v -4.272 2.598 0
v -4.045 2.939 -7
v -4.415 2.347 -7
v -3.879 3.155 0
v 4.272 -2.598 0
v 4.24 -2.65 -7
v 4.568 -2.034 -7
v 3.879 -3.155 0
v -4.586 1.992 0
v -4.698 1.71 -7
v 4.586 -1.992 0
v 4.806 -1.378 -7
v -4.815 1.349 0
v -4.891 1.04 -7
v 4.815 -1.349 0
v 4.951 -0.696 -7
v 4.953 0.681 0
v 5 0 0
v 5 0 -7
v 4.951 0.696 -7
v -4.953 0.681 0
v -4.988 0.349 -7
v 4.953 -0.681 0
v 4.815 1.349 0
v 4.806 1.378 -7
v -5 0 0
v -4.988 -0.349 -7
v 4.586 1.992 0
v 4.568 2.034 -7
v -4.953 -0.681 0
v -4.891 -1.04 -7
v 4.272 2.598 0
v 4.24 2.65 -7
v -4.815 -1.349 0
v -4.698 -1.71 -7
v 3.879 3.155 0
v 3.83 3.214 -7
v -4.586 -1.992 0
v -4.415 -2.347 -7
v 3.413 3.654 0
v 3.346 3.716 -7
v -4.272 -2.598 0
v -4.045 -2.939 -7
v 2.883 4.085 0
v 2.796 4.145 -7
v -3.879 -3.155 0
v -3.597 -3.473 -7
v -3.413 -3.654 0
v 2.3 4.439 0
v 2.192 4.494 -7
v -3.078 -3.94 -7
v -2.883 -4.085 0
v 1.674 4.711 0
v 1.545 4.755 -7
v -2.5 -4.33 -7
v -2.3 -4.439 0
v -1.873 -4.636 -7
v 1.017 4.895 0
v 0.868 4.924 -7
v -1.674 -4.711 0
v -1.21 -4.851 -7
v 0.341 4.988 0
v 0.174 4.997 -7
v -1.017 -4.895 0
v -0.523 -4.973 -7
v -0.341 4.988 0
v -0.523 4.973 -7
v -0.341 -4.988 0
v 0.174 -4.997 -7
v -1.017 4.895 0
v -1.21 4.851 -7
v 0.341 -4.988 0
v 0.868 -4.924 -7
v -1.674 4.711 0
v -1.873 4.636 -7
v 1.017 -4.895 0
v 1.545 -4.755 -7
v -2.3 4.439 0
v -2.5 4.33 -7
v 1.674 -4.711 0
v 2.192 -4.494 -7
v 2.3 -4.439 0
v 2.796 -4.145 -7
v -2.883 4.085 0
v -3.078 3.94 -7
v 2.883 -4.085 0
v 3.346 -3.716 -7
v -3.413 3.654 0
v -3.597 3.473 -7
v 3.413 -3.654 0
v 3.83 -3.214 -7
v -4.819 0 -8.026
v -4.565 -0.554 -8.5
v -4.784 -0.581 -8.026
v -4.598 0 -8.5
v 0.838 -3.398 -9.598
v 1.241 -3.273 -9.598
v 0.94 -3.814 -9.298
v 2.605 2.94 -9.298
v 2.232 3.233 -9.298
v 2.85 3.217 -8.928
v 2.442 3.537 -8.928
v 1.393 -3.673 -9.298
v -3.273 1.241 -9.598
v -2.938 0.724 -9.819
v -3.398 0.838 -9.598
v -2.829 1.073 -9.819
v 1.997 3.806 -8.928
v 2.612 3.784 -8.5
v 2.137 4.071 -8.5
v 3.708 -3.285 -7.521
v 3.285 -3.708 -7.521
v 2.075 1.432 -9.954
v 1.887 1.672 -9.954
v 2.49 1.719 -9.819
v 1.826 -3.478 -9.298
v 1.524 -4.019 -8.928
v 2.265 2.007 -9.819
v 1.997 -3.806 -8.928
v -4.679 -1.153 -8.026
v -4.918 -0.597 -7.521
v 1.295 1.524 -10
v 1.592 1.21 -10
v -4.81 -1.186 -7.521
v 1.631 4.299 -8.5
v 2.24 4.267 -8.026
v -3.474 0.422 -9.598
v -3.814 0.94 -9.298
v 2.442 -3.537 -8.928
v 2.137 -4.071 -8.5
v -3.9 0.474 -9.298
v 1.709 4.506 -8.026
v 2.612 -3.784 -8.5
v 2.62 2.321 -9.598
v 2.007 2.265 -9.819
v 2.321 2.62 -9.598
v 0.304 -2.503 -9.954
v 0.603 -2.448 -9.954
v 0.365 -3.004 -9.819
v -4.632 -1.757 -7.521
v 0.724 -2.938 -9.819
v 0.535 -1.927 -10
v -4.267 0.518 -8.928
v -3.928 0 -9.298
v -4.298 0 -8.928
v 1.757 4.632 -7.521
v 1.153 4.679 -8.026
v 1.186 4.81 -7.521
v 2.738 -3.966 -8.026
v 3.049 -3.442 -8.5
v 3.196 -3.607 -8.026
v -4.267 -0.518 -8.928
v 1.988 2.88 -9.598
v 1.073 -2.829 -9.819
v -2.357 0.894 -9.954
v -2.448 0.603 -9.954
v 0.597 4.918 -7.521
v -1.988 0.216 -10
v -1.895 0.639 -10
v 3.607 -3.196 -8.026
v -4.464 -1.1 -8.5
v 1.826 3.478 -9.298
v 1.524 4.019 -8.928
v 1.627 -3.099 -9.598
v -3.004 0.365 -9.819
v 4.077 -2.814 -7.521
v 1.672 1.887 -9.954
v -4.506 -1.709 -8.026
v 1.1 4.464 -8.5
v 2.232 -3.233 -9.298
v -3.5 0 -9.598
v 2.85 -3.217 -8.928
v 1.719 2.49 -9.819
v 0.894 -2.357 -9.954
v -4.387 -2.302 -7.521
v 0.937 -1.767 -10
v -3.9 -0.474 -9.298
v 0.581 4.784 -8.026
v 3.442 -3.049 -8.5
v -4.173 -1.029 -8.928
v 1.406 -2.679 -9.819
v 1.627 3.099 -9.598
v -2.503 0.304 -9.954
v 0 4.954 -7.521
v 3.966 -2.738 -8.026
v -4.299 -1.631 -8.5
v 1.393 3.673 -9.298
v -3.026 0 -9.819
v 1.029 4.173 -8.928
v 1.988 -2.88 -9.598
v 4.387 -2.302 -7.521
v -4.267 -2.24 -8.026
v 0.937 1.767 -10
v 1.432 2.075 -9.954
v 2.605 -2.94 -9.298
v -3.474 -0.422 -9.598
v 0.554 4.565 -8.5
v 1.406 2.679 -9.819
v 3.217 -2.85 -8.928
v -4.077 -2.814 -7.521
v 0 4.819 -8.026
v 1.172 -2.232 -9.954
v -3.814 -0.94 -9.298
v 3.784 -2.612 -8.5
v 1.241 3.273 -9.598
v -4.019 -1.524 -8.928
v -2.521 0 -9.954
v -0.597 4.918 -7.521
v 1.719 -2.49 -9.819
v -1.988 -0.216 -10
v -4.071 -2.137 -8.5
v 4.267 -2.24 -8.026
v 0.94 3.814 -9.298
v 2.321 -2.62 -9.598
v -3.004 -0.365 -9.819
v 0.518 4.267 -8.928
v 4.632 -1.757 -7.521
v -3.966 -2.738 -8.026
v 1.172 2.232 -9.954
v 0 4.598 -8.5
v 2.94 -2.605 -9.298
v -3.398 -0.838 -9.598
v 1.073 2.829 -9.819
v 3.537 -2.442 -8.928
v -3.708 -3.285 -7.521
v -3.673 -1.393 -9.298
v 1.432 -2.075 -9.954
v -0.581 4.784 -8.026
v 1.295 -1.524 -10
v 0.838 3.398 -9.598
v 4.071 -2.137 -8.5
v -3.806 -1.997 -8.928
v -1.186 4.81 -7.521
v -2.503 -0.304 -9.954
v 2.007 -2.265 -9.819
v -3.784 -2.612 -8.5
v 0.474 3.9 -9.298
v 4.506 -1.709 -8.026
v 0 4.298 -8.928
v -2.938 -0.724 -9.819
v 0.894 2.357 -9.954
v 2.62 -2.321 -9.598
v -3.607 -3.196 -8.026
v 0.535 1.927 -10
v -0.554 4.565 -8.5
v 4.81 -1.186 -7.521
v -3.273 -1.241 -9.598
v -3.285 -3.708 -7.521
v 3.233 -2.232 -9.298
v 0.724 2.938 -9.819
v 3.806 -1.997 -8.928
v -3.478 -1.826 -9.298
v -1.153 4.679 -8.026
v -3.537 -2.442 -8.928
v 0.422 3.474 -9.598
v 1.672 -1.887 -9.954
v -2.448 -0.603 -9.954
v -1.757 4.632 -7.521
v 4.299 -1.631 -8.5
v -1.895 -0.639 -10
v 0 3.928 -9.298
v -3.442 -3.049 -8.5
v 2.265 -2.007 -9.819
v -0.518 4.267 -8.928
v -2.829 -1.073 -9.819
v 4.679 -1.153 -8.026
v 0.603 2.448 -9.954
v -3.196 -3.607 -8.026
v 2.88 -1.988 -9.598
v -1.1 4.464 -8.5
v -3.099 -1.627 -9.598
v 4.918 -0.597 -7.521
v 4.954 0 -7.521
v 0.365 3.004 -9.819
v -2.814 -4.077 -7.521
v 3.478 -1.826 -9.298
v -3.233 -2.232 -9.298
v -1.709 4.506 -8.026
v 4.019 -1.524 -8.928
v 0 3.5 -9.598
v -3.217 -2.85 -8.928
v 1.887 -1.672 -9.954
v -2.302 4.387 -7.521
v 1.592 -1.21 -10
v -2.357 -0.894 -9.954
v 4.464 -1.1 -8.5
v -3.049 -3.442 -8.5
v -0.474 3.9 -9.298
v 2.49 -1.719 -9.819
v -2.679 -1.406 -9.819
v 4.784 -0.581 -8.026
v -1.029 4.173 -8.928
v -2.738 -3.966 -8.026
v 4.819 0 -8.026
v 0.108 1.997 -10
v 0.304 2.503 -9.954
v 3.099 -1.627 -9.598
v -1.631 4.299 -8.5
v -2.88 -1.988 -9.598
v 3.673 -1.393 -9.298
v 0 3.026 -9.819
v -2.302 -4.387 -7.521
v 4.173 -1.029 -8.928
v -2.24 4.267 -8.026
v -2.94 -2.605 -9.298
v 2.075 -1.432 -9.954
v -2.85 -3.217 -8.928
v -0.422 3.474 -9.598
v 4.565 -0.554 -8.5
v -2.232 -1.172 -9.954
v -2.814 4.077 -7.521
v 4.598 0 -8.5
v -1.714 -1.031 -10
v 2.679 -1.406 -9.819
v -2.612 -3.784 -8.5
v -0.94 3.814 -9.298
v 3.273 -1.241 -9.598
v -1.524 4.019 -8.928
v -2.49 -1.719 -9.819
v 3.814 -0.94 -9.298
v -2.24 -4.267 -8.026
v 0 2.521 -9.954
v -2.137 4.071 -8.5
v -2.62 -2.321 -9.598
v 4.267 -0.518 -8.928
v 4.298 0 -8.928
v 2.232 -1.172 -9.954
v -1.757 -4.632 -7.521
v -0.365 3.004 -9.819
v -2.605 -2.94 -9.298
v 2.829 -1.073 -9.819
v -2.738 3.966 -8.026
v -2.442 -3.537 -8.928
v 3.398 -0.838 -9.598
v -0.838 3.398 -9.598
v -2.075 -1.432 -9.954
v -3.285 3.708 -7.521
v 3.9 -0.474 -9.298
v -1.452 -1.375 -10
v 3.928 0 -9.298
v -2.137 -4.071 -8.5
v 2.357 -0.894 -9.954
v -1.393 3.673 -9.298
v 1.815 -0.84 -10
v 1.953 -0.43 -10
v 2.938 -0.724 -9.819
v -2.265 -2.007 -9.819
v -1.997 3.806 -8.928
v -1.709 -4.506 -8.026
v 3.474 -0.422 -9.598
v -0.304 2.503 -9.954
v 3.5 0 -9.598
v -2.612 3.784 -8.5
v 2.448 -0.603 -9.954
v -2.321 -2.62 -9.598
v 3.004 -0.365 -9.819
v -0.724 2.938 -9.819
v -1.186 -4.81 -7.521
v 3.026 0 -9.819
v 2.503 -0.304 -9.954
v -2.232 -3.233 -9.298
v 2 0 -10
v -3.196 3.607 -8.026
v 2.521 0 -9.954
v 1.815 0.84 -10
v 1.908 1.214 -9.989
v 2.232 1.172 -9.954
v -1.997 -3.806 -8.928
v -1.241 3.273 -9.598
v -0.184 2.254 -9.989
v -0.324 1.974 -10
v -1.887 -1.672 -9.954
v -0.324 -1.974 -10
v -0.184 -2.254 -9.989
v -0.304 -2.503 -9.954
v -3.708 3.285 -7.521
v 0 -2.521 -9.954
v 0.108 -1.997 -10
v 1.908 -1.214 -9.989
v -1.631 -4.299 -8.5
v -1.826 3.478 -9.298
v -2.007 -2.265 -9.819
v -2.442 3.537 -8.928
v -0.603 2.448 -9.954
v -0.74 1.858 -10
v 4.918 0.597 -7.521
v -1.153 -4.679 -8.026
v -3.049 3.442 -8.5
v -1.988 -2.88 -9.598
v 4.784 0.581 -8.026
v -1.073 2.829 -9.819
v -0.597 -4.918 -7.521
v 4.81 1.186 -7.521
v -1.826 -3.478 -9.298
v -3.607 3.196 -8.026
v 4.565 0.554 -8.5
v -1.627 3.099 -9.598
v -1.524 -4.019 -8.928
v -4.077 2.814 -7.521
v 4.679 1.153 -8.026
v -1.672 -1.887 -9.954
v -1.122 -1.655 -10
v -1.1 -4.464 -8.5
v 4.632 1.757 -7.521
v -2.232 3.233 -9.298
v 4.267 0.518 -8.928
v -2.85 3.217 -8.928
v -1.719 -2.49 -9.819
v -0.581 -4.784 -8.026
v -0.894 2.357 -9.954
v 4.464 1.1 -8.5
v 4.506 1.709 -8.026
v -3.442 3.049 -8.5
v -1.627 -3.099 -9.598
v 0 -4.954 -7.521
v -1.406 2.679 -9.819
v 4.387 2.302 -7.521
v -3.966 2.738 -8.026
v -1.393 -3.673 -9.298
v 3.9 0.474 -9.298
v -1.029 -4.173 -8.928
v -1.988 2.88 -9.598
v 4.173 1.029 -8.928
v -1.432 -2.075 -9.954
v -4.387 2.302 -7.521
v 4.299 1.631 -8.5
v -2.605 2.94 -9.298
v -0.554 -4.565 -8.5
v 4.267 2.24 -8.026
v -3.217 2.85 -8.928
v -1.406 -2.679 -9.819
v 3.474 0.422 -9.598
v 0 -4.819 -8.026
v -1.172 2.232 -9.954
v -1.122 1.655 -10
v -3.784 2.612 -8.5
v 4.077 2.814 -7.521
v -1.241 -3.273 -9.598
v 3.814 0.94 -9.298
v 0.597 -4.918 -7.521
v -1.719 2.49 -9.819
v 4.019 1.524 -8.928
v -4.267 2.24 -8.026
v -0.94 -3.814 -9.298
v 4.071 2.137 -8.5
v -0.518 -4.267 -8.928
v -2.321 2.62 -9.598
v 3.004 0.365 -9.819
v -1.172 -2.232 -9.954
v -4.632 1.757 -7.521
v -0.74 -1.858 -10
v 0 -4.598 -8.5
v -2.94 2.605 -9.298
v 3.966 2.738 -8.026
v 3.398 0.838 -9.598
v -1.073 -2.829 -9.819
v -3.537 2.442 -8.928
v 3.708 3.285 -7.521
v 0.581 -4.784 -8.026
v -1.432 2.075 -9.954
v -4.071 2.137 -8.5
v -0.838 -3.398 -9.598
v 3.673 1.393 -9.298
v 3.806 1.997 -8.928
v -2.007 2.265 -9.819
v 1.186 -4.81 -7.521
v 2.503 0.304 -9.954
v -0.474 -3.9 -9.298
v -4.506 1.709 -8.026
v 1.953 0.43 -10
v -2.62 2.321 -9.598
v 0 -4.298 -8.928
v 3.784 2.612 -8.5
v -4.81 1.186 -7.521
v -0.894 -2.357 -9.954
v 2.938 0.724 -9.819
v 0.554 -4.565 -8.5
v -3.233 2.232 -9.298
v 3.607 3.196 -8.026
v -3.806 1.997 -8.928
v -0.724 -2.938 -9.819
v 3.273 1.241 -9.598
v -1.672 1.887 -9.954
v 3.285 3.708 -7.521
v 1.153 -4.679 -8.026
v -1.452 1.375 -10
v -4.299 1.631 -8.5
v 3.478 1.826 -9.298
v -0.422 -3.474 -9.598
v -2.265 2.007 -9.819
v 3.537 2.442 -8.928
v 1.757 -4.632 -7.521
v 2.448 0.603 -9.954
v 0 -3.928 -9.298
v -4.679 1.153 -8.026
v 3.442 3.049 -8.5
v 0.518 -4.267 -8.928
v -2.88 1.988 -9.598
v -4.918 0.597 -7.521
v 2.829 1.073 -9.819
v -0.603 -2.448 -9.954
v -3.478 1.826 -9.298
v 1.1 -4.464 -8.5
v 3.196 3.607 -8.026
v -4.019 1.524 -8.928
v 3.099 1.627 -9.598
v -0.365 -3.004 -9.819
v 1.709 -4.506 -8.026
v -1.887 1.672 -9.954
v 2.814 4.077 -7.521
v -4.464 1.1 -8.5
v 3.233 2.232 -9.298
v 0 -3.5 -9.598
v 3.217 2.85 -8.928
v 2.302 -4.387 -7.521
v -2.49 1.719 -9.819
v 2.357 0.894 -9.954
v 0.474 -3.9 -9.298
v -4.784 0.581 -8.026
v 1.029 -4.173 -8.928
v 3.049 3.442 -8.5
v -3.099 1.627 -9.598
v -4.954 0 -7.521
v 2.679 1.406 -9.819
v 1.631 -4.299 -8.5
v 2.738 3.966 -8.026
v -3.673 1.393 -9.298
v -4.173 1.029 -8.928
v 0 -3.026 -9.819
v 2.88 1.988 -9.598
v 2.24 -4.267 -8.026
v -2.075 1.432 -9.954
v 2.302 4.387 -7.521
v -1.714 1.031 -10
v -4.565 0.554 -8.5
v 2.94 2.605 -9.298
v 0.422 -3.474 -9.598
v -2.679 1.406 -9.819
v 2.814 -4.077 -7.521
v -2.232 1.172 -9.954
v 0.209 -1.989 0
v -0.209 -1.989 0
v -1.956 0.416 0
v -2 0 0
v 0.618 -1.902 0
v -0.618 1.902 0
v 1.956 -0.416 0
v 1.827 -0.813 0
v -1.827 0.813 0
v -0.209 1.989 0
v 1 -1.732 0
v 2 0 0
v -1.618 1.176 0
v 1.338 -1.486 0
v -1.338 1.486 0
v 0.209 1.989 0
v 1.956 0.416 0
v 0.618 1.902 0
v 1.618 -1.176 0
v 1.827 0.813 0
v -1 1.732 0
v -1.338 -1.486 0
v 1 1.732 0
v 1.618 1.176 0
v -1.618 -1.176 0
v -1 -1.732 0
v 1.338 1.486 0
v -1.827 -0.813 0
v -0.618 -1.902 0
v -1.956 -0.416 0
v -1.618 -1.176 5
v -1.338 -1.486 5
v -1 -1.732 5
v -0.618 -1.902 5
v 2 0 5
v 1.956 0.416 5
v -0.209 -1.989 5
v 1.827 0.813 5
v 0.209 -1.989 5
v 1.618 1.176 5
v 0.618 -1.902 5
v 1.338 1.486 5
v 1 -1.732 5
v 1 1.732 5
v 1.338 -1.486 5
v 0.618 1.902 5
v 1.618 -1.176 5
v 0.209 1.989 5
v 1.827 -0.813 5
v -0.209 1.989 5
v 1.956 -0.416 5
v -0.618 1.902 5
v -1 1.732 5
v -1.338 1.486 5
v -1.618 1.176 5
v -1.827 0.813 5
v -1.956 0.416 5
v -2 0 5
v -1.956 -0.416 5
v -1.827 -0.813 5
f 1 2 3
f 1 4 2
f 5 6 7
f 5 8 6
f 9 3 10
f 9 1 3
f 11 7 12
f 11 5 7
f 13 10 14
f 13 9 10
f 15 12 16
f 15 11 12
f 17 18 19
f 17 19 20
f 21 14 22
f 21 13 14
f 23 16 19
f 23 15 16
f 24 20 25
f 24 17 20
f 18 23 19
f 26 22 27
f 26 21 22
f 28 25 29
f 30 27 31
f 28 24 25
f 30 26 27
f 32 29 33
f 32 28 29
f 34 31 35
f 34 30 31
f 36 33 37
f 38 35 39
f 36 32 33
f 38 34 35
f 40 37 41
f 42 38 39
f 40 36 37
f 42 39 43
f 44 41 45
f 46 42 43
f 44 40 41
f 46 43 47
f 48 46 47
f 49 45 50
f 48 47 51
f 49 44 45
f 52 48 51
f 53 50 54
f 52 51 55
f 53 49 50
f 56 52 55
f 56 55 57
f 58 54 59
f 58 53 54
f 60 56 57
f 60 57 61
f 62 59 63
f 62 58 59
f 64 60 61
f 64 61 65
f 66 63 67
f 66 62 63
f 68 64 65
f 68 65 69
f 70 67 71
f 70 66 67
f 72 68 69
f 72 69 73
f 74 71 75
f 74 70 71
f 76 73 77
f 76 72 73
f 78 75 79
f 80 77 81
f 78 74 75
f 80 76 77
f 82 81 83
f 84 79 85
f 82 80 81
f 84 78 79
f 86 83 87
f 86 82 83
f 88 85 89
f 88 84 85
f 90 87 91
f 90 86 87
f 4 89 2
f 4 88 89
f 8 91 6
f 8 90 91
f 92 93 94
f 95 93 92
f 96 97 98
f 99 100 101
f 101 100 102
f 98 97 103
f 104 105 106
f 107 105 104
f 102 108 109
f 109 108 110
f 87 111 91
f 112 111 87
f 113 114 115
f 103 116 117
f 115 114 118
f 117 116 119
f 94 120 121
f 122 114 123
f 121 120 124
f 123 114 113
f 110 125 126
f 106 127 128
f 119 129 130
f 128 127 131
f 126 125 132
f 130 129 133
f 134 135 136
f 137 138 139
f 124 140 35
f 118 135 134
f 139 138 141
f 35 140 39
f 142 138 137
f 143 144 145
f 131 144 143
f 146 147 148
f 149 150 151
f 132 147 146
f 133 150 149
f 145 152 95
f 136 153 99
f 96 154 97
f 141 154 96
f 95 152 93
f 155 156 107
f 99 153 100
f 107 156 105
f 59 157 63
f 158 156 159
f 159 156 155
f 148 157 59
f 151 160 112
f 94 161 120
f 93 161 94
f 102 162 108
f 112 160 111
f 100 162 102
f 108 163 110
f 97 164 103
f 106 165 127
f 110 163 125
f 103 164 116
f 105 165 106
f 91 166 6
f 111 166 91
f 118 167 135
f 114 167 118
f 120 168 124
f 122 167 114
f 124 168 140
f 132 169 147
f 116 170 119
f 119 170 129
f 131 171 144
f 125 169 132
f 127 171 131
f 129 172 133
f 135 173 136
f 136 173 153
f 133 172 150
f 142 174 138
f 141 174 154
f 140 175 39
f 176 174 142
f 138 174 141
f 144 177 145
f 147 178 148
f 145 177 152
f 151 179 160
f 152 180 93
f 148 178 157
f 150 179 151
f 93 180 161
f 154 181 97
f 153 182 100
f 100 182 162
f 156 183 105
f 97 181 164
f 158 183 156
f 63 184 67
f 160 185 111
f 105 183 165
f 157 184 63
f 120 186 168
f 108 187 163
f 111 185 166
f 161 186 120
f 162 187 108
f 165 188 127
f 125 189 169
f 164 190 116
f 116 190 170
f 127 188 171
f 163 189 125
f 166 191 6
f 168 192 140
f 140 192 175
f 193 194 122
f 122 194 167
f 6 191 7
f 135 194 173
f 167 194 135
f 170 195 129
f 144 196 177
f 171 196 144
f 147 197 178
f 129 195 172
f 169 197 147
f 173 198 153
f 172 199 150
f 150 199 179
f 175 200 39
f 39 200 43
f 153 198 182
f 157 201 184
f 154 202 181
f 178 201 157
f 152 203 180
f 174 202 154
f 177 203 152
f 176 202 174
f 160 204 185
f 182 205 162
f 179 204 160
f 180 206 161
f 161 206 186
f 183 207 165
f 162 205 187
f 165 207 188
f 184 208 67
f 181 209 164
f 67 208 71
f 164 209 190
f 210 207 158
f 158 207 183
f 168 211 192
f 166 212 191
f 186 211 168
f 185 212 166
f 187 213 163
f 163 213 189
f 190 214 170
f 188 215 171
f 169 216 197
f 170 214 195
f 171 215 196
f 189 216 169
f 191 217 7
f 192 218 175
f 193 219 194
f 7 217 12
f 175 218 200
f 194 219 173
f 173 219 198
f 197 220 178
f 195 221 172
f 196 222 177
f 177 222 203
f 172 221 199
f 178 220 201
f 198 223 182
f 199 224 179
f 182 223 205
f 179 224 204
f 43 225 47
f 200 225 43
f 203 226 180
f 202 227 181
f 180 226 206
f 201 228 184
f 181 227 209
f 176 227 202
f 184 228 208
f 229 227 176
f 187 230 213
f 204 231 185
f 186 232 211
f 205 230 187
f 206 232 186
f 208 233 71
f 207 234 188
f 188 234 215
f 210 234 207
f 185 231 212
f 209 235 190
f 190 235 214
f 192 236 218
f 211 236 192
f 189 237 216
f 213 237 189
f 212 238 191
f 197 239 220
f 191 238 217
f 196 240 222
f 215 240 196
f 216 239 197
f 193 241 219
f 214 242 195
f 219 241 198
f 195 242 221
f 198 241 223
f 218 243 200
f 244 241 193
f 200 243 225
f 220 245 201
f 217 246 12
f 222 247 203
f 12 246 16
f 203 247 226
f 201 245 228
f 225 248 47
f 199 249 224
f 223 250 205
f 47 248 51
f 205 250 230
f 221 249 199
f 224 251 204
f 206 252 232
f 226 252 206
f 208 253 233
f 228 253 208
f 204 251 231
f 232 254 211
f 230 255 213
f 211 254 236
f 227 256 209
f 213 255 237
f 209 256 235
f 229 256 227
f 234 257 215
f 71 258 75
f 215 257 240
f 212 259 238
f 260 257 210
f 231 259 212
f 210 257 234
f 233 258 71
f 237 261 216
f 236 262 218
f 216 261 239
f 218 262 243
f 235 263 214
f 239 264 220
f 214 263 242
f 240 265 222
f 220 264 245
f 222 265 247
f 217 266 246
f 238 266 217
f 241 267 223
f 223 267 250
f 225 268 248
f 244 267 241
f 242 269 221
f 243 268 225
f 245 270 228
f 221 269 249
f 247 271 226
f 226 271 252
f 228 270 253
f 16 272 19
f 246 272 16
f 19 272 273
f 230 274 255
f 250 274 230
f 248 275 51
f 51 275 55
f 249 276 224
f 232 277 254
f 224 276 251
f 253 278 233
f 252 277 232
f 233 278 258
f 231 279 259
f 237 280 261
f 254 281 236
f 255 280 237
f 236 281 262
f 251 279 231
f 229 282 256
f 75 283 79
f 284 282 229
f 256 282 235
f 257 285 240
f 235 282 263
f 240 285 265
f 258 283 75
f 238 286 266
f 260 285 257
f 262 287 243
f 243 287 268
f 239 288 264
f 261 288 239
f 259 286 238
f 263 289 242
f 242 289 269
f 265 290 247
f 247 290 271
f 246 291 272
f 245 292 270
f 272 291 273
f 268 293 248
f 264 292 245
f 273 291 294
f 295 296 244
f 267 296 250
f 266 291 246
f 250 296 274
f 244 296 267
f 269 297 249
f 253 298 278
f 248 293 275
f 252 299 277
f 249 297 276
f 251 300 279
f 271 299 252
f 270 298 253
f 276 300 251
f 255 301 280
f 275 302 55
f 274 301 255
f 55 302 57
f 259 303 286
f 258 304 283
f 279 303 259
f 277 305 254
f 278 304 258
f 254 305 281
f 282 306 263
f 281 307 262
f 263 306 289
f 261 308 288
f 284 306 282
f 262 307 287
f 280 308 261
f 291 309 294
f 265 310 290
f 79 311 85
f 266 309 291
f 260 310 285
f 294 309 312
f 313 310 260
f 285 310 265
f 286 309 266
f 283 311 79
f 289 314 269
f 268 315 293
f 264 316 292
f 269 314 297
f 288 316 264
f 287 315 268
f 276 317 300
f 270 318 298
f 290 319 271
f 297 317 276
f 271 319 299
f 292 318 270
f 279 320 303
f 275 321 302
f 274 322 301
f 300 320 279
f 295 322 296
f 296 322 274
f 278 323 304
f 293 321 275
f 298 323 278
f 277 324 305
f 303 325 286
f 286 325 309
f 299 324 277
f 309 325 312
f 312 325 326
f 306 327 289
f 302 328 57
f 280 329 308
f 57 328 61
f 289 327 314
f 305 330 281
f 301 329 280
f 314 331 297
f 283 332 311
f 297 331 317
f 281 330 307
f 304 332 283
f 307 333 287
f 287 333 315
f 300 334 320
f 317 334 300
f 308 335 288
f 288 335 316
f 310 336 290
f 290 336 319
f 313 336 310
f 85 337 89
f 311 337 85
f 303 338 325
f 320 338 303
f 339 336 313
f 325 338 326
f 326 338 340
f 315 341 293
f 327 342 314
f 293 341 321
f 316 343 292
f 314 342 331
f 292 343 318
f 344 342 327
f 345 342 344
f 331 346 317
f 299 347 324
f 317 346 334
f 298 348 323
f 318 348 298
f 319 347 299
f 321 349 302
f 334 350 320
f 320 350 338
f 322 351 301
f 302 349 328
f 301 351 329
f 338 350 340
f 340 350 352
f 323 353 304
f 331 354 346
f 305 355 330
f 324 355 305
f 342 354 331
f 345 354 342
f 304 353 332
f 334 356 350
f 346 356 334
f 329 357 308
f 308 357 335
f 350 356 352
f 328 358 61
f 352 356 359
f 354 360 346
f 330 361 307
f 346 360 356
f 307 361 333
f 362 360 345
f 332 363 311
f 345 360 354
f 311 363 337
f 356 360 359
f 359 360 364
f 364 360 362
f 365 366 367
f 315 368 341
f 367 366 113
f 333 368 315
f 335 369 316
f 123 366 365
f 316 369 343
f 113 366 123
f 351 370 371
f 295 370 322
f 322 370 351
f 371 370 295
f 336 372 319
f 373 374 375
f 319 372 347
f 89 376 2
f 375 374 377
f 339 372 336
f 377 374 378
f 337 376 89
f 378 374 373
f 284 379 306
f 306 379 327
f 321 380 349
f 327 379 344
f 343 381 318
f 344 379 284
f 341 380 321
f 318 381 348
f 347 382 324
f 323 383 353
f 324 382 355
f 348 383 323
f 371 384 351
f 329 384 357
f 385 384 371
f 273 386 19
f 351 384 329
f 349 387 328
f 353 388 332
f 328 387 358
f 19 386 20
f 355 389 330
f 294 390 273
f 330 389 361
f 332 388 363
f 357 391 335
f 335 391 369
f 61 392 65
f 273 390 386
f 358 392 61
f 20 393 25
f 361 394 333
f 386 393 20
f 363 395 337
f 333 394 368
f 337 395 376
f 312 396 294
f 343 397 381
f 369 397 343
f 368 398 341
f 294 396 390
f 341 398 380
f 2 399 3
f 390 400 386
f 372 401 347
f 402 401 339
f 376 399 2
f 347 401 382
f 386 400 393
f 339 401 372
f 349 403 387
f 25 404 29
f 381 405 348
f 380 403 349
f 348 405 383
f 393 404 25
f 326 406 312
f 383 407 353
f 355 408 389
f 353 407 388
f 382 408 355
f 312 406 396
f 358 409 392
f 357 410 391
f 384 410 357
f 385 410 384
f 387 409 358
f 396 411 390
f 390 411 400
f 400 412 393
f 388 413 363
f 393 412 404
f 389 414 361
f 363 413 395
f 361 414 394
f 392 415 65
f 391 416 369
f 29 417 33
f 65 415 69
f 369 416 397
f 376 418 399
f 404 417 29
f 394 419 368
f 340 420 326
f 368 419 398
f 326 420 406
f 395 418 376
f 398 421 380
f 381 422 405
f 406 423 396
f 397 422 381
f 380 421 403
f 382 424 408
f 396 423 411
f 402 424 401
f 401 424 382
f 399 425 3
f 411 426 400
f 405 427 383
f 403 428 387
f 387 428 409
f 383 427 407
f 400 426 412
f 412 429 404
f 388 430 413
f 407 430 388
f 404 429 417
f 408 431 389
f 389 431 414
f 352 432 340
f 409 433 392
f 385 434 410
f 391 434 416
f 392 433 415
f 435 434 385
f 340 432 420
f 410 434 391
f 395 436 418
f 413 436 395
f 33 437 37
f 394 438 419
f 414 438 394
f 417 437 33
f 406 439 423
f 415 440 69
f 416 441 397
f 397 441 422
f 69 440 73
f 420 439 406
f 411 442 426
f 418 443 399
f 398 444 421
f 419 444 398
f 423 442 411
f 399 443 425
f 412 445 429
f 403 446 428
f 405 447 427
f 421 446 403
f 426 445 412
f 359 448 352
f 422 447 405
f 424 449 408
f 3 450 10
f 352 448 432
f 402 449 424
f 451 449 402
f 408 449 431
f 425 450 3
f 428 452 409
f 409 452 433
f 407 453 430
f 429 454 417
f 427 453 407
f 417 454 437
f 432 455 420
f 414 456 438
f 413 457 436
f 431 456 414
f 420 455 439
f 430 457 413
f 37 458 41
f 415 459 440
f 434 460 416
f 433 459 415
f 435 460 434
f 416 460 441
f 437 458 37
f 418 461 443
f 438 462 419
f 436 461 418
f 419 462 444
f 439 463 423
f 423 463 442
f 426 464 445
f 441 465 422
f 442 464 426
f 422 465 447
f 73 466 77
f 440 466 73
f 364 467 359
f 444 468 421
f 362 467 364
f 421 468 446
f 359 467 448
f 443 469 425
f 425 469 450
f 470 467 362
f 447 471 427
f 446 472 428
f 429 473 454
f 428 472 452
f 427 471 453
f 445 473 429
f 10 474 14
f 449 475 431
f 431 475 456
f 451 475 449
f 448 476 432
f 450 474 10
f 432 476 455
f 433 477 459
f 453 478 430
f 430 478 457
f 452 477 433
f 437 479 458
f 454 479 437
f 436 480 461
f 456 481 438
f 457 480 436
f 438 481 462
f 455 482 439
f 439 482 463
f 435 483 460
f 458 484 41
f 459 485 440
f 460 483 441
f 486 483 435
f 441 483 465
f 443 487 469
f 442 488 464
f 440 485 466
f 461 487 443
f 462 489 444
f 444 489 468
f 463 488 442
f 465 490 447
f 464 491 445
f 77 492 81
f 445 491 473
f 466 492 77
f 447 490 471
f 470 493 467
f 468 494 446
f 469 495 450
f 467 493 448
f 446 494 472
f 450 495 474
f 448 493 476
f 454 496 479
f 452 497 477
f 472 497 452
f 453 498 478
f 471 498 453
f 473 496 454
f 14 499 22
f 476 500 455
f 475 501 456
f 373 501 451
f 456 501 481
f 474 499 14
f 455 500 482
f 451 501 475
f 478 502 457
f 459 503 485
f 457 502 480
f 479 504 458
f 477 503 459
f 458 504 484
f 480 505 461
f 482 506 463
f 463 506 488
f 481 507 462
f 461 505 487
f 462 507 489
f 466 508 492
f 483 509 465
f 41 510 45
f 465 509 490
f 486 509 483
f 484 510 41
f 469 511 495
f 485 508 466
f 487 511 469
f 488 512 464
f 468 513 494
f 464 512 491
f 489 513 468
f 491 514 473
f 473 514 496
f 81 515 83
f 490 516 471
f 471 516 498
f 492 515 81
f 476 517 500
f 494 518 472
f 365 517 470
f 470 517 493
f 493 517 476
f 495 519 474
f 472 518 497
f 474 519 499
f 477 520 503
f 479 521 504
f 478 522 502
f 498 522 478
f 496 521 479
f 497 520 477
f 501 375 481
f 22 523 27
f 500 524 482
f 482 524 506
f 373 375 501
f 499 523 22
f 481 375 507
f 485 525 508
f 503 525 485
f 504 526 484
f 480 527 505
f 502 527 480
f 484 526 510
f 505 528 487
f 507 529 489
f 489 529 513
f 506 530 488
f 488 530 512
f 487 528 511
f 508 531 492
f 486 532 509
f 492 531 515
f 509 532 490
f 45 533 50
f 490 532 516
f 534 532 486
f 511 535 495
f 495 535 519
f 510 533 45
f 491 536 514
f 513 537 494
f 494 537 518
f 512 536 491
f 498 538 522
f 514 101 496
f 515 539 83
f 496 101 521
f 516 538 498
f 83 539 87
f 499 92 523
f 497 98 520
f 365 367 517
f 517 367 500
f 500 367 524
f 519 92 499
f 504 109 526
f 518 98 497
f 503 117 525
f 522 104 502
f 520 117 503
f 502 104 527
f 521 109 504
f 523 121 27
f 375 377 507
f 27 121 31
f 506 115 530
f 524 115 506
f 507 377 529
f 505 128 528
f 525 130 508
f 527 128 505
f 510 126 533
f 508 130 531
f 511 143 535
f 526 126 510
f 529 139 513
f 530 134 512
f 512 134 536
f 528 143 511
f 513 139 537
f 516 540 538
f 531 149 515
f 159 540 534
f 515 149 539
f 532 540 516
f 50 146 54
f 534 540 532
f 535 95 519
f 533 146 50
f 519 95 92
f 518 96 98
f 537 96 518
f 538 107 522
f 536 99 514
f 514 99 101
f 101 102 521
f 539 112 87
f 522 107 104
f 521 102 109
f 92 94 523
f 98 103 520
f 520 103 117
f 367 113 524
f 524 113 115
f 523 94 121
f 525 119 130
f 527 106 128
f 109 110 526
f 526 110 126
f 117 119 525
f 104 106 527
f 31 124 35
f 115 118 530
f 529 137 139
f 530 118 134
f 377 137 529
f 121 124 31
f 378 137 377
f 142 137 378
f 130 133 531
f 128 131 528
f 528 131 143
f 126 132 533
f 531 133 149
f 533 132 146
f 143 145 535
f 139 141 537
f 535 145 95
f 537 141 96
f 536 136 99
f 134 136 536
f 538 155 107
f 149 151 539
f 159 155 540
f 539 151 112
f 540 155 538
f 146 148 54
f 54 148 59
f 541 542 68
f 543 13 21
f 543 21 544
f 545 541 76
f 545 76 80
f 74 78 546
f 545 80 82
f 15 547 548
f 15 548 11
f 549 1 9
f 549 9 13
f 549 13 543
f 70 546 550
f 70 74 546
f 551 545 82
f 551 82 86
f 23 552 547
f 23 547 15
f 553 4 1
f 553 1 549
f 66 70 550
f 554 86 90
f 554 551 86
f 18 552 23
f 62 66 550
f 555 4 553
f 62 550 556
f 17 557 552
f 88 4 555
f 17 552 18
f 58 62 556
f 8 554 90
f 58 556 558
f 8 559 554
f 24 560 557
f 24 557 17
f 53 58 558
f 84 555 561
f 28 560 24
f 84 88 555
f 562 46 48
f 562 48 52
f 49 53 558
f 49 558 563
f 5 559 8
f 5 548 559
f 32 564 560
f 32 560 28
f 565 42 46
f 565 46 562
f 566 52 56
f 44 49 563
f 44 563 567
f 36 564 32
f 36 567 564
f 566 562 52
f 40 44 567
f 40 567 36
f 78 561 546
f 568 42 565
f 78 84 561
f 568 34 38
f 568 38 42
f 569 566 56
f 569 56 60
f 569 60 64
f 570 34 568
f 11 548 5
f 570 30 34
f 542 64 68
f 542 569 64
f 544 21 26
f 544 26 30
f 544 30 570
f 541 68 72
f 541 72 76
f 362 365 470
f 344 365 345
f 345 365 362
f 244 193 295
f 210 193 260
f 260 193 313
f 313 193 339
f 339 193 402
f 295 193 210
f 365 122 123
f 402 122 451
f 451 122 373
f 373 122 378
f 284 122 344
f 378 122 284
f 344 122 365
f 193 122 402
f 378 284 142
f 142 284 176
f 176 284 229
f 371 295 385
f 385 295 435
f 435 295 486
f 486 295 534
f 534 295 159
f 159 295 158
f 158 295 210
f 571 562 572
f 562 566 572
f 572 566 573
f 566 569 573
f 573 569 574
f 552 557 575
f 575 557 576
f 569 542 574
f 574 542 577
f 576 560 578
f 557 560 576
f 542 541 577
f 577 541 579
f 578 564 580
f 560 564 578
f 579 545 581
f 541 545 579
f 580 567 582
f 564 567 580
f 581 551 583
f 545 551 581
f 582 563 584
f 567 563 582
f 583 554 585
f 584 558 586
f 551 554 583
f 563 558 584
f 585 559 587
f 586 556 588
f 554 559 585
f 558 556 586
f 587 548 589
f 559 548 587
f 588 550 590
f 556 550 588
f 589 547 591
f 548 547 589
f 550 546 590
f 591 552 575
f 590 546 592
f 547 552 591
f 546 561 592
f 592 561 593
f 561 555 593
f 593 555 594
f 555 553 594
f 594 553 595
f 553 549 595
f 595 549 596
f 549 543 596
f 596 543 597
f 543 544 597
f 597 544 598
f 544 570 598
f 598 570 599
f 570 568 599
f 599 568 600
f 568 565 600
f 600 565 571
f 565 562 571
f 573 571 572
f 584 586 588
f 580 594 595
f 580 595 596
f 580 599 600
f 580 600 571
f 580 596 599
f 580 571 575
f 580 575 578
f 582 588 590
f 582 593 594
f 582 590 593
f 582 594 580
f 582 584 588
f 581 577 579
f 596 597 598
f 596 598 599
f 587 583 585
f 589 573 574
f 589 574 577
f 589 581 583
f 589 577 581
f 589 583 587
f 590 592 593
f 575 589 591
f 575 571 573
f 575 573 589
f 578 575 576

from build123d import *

# Parameters (mm, degrees)
SKETCH_R     = 2
PAD_DEPTH    = 5
SKETCH001_R  = 5
PAD001_DEPTH = 10
FILLET_R     = 3


with BuildPart() as part:
    # Sketch → Pad (new body)
    with BuildSketch(Plane.XY):
        Circle(SKETCH_R)
    extrude(amount=PAD_DEPTH)

    # Sketch001 → Pad001 (join)
    with BuildSketch(Plane.XY):
        Circle(SKETCH001_R)
    extrude(amount=-PAD001_DEPTH)

    # Fillet
    fillet_edges = [part.edges().sort_by_distance(p)[0] for p in [
        (-5, 0, -10),
    ]]
    fillet(fillet_edges, radius=FILLET_R)


solid = part.part
